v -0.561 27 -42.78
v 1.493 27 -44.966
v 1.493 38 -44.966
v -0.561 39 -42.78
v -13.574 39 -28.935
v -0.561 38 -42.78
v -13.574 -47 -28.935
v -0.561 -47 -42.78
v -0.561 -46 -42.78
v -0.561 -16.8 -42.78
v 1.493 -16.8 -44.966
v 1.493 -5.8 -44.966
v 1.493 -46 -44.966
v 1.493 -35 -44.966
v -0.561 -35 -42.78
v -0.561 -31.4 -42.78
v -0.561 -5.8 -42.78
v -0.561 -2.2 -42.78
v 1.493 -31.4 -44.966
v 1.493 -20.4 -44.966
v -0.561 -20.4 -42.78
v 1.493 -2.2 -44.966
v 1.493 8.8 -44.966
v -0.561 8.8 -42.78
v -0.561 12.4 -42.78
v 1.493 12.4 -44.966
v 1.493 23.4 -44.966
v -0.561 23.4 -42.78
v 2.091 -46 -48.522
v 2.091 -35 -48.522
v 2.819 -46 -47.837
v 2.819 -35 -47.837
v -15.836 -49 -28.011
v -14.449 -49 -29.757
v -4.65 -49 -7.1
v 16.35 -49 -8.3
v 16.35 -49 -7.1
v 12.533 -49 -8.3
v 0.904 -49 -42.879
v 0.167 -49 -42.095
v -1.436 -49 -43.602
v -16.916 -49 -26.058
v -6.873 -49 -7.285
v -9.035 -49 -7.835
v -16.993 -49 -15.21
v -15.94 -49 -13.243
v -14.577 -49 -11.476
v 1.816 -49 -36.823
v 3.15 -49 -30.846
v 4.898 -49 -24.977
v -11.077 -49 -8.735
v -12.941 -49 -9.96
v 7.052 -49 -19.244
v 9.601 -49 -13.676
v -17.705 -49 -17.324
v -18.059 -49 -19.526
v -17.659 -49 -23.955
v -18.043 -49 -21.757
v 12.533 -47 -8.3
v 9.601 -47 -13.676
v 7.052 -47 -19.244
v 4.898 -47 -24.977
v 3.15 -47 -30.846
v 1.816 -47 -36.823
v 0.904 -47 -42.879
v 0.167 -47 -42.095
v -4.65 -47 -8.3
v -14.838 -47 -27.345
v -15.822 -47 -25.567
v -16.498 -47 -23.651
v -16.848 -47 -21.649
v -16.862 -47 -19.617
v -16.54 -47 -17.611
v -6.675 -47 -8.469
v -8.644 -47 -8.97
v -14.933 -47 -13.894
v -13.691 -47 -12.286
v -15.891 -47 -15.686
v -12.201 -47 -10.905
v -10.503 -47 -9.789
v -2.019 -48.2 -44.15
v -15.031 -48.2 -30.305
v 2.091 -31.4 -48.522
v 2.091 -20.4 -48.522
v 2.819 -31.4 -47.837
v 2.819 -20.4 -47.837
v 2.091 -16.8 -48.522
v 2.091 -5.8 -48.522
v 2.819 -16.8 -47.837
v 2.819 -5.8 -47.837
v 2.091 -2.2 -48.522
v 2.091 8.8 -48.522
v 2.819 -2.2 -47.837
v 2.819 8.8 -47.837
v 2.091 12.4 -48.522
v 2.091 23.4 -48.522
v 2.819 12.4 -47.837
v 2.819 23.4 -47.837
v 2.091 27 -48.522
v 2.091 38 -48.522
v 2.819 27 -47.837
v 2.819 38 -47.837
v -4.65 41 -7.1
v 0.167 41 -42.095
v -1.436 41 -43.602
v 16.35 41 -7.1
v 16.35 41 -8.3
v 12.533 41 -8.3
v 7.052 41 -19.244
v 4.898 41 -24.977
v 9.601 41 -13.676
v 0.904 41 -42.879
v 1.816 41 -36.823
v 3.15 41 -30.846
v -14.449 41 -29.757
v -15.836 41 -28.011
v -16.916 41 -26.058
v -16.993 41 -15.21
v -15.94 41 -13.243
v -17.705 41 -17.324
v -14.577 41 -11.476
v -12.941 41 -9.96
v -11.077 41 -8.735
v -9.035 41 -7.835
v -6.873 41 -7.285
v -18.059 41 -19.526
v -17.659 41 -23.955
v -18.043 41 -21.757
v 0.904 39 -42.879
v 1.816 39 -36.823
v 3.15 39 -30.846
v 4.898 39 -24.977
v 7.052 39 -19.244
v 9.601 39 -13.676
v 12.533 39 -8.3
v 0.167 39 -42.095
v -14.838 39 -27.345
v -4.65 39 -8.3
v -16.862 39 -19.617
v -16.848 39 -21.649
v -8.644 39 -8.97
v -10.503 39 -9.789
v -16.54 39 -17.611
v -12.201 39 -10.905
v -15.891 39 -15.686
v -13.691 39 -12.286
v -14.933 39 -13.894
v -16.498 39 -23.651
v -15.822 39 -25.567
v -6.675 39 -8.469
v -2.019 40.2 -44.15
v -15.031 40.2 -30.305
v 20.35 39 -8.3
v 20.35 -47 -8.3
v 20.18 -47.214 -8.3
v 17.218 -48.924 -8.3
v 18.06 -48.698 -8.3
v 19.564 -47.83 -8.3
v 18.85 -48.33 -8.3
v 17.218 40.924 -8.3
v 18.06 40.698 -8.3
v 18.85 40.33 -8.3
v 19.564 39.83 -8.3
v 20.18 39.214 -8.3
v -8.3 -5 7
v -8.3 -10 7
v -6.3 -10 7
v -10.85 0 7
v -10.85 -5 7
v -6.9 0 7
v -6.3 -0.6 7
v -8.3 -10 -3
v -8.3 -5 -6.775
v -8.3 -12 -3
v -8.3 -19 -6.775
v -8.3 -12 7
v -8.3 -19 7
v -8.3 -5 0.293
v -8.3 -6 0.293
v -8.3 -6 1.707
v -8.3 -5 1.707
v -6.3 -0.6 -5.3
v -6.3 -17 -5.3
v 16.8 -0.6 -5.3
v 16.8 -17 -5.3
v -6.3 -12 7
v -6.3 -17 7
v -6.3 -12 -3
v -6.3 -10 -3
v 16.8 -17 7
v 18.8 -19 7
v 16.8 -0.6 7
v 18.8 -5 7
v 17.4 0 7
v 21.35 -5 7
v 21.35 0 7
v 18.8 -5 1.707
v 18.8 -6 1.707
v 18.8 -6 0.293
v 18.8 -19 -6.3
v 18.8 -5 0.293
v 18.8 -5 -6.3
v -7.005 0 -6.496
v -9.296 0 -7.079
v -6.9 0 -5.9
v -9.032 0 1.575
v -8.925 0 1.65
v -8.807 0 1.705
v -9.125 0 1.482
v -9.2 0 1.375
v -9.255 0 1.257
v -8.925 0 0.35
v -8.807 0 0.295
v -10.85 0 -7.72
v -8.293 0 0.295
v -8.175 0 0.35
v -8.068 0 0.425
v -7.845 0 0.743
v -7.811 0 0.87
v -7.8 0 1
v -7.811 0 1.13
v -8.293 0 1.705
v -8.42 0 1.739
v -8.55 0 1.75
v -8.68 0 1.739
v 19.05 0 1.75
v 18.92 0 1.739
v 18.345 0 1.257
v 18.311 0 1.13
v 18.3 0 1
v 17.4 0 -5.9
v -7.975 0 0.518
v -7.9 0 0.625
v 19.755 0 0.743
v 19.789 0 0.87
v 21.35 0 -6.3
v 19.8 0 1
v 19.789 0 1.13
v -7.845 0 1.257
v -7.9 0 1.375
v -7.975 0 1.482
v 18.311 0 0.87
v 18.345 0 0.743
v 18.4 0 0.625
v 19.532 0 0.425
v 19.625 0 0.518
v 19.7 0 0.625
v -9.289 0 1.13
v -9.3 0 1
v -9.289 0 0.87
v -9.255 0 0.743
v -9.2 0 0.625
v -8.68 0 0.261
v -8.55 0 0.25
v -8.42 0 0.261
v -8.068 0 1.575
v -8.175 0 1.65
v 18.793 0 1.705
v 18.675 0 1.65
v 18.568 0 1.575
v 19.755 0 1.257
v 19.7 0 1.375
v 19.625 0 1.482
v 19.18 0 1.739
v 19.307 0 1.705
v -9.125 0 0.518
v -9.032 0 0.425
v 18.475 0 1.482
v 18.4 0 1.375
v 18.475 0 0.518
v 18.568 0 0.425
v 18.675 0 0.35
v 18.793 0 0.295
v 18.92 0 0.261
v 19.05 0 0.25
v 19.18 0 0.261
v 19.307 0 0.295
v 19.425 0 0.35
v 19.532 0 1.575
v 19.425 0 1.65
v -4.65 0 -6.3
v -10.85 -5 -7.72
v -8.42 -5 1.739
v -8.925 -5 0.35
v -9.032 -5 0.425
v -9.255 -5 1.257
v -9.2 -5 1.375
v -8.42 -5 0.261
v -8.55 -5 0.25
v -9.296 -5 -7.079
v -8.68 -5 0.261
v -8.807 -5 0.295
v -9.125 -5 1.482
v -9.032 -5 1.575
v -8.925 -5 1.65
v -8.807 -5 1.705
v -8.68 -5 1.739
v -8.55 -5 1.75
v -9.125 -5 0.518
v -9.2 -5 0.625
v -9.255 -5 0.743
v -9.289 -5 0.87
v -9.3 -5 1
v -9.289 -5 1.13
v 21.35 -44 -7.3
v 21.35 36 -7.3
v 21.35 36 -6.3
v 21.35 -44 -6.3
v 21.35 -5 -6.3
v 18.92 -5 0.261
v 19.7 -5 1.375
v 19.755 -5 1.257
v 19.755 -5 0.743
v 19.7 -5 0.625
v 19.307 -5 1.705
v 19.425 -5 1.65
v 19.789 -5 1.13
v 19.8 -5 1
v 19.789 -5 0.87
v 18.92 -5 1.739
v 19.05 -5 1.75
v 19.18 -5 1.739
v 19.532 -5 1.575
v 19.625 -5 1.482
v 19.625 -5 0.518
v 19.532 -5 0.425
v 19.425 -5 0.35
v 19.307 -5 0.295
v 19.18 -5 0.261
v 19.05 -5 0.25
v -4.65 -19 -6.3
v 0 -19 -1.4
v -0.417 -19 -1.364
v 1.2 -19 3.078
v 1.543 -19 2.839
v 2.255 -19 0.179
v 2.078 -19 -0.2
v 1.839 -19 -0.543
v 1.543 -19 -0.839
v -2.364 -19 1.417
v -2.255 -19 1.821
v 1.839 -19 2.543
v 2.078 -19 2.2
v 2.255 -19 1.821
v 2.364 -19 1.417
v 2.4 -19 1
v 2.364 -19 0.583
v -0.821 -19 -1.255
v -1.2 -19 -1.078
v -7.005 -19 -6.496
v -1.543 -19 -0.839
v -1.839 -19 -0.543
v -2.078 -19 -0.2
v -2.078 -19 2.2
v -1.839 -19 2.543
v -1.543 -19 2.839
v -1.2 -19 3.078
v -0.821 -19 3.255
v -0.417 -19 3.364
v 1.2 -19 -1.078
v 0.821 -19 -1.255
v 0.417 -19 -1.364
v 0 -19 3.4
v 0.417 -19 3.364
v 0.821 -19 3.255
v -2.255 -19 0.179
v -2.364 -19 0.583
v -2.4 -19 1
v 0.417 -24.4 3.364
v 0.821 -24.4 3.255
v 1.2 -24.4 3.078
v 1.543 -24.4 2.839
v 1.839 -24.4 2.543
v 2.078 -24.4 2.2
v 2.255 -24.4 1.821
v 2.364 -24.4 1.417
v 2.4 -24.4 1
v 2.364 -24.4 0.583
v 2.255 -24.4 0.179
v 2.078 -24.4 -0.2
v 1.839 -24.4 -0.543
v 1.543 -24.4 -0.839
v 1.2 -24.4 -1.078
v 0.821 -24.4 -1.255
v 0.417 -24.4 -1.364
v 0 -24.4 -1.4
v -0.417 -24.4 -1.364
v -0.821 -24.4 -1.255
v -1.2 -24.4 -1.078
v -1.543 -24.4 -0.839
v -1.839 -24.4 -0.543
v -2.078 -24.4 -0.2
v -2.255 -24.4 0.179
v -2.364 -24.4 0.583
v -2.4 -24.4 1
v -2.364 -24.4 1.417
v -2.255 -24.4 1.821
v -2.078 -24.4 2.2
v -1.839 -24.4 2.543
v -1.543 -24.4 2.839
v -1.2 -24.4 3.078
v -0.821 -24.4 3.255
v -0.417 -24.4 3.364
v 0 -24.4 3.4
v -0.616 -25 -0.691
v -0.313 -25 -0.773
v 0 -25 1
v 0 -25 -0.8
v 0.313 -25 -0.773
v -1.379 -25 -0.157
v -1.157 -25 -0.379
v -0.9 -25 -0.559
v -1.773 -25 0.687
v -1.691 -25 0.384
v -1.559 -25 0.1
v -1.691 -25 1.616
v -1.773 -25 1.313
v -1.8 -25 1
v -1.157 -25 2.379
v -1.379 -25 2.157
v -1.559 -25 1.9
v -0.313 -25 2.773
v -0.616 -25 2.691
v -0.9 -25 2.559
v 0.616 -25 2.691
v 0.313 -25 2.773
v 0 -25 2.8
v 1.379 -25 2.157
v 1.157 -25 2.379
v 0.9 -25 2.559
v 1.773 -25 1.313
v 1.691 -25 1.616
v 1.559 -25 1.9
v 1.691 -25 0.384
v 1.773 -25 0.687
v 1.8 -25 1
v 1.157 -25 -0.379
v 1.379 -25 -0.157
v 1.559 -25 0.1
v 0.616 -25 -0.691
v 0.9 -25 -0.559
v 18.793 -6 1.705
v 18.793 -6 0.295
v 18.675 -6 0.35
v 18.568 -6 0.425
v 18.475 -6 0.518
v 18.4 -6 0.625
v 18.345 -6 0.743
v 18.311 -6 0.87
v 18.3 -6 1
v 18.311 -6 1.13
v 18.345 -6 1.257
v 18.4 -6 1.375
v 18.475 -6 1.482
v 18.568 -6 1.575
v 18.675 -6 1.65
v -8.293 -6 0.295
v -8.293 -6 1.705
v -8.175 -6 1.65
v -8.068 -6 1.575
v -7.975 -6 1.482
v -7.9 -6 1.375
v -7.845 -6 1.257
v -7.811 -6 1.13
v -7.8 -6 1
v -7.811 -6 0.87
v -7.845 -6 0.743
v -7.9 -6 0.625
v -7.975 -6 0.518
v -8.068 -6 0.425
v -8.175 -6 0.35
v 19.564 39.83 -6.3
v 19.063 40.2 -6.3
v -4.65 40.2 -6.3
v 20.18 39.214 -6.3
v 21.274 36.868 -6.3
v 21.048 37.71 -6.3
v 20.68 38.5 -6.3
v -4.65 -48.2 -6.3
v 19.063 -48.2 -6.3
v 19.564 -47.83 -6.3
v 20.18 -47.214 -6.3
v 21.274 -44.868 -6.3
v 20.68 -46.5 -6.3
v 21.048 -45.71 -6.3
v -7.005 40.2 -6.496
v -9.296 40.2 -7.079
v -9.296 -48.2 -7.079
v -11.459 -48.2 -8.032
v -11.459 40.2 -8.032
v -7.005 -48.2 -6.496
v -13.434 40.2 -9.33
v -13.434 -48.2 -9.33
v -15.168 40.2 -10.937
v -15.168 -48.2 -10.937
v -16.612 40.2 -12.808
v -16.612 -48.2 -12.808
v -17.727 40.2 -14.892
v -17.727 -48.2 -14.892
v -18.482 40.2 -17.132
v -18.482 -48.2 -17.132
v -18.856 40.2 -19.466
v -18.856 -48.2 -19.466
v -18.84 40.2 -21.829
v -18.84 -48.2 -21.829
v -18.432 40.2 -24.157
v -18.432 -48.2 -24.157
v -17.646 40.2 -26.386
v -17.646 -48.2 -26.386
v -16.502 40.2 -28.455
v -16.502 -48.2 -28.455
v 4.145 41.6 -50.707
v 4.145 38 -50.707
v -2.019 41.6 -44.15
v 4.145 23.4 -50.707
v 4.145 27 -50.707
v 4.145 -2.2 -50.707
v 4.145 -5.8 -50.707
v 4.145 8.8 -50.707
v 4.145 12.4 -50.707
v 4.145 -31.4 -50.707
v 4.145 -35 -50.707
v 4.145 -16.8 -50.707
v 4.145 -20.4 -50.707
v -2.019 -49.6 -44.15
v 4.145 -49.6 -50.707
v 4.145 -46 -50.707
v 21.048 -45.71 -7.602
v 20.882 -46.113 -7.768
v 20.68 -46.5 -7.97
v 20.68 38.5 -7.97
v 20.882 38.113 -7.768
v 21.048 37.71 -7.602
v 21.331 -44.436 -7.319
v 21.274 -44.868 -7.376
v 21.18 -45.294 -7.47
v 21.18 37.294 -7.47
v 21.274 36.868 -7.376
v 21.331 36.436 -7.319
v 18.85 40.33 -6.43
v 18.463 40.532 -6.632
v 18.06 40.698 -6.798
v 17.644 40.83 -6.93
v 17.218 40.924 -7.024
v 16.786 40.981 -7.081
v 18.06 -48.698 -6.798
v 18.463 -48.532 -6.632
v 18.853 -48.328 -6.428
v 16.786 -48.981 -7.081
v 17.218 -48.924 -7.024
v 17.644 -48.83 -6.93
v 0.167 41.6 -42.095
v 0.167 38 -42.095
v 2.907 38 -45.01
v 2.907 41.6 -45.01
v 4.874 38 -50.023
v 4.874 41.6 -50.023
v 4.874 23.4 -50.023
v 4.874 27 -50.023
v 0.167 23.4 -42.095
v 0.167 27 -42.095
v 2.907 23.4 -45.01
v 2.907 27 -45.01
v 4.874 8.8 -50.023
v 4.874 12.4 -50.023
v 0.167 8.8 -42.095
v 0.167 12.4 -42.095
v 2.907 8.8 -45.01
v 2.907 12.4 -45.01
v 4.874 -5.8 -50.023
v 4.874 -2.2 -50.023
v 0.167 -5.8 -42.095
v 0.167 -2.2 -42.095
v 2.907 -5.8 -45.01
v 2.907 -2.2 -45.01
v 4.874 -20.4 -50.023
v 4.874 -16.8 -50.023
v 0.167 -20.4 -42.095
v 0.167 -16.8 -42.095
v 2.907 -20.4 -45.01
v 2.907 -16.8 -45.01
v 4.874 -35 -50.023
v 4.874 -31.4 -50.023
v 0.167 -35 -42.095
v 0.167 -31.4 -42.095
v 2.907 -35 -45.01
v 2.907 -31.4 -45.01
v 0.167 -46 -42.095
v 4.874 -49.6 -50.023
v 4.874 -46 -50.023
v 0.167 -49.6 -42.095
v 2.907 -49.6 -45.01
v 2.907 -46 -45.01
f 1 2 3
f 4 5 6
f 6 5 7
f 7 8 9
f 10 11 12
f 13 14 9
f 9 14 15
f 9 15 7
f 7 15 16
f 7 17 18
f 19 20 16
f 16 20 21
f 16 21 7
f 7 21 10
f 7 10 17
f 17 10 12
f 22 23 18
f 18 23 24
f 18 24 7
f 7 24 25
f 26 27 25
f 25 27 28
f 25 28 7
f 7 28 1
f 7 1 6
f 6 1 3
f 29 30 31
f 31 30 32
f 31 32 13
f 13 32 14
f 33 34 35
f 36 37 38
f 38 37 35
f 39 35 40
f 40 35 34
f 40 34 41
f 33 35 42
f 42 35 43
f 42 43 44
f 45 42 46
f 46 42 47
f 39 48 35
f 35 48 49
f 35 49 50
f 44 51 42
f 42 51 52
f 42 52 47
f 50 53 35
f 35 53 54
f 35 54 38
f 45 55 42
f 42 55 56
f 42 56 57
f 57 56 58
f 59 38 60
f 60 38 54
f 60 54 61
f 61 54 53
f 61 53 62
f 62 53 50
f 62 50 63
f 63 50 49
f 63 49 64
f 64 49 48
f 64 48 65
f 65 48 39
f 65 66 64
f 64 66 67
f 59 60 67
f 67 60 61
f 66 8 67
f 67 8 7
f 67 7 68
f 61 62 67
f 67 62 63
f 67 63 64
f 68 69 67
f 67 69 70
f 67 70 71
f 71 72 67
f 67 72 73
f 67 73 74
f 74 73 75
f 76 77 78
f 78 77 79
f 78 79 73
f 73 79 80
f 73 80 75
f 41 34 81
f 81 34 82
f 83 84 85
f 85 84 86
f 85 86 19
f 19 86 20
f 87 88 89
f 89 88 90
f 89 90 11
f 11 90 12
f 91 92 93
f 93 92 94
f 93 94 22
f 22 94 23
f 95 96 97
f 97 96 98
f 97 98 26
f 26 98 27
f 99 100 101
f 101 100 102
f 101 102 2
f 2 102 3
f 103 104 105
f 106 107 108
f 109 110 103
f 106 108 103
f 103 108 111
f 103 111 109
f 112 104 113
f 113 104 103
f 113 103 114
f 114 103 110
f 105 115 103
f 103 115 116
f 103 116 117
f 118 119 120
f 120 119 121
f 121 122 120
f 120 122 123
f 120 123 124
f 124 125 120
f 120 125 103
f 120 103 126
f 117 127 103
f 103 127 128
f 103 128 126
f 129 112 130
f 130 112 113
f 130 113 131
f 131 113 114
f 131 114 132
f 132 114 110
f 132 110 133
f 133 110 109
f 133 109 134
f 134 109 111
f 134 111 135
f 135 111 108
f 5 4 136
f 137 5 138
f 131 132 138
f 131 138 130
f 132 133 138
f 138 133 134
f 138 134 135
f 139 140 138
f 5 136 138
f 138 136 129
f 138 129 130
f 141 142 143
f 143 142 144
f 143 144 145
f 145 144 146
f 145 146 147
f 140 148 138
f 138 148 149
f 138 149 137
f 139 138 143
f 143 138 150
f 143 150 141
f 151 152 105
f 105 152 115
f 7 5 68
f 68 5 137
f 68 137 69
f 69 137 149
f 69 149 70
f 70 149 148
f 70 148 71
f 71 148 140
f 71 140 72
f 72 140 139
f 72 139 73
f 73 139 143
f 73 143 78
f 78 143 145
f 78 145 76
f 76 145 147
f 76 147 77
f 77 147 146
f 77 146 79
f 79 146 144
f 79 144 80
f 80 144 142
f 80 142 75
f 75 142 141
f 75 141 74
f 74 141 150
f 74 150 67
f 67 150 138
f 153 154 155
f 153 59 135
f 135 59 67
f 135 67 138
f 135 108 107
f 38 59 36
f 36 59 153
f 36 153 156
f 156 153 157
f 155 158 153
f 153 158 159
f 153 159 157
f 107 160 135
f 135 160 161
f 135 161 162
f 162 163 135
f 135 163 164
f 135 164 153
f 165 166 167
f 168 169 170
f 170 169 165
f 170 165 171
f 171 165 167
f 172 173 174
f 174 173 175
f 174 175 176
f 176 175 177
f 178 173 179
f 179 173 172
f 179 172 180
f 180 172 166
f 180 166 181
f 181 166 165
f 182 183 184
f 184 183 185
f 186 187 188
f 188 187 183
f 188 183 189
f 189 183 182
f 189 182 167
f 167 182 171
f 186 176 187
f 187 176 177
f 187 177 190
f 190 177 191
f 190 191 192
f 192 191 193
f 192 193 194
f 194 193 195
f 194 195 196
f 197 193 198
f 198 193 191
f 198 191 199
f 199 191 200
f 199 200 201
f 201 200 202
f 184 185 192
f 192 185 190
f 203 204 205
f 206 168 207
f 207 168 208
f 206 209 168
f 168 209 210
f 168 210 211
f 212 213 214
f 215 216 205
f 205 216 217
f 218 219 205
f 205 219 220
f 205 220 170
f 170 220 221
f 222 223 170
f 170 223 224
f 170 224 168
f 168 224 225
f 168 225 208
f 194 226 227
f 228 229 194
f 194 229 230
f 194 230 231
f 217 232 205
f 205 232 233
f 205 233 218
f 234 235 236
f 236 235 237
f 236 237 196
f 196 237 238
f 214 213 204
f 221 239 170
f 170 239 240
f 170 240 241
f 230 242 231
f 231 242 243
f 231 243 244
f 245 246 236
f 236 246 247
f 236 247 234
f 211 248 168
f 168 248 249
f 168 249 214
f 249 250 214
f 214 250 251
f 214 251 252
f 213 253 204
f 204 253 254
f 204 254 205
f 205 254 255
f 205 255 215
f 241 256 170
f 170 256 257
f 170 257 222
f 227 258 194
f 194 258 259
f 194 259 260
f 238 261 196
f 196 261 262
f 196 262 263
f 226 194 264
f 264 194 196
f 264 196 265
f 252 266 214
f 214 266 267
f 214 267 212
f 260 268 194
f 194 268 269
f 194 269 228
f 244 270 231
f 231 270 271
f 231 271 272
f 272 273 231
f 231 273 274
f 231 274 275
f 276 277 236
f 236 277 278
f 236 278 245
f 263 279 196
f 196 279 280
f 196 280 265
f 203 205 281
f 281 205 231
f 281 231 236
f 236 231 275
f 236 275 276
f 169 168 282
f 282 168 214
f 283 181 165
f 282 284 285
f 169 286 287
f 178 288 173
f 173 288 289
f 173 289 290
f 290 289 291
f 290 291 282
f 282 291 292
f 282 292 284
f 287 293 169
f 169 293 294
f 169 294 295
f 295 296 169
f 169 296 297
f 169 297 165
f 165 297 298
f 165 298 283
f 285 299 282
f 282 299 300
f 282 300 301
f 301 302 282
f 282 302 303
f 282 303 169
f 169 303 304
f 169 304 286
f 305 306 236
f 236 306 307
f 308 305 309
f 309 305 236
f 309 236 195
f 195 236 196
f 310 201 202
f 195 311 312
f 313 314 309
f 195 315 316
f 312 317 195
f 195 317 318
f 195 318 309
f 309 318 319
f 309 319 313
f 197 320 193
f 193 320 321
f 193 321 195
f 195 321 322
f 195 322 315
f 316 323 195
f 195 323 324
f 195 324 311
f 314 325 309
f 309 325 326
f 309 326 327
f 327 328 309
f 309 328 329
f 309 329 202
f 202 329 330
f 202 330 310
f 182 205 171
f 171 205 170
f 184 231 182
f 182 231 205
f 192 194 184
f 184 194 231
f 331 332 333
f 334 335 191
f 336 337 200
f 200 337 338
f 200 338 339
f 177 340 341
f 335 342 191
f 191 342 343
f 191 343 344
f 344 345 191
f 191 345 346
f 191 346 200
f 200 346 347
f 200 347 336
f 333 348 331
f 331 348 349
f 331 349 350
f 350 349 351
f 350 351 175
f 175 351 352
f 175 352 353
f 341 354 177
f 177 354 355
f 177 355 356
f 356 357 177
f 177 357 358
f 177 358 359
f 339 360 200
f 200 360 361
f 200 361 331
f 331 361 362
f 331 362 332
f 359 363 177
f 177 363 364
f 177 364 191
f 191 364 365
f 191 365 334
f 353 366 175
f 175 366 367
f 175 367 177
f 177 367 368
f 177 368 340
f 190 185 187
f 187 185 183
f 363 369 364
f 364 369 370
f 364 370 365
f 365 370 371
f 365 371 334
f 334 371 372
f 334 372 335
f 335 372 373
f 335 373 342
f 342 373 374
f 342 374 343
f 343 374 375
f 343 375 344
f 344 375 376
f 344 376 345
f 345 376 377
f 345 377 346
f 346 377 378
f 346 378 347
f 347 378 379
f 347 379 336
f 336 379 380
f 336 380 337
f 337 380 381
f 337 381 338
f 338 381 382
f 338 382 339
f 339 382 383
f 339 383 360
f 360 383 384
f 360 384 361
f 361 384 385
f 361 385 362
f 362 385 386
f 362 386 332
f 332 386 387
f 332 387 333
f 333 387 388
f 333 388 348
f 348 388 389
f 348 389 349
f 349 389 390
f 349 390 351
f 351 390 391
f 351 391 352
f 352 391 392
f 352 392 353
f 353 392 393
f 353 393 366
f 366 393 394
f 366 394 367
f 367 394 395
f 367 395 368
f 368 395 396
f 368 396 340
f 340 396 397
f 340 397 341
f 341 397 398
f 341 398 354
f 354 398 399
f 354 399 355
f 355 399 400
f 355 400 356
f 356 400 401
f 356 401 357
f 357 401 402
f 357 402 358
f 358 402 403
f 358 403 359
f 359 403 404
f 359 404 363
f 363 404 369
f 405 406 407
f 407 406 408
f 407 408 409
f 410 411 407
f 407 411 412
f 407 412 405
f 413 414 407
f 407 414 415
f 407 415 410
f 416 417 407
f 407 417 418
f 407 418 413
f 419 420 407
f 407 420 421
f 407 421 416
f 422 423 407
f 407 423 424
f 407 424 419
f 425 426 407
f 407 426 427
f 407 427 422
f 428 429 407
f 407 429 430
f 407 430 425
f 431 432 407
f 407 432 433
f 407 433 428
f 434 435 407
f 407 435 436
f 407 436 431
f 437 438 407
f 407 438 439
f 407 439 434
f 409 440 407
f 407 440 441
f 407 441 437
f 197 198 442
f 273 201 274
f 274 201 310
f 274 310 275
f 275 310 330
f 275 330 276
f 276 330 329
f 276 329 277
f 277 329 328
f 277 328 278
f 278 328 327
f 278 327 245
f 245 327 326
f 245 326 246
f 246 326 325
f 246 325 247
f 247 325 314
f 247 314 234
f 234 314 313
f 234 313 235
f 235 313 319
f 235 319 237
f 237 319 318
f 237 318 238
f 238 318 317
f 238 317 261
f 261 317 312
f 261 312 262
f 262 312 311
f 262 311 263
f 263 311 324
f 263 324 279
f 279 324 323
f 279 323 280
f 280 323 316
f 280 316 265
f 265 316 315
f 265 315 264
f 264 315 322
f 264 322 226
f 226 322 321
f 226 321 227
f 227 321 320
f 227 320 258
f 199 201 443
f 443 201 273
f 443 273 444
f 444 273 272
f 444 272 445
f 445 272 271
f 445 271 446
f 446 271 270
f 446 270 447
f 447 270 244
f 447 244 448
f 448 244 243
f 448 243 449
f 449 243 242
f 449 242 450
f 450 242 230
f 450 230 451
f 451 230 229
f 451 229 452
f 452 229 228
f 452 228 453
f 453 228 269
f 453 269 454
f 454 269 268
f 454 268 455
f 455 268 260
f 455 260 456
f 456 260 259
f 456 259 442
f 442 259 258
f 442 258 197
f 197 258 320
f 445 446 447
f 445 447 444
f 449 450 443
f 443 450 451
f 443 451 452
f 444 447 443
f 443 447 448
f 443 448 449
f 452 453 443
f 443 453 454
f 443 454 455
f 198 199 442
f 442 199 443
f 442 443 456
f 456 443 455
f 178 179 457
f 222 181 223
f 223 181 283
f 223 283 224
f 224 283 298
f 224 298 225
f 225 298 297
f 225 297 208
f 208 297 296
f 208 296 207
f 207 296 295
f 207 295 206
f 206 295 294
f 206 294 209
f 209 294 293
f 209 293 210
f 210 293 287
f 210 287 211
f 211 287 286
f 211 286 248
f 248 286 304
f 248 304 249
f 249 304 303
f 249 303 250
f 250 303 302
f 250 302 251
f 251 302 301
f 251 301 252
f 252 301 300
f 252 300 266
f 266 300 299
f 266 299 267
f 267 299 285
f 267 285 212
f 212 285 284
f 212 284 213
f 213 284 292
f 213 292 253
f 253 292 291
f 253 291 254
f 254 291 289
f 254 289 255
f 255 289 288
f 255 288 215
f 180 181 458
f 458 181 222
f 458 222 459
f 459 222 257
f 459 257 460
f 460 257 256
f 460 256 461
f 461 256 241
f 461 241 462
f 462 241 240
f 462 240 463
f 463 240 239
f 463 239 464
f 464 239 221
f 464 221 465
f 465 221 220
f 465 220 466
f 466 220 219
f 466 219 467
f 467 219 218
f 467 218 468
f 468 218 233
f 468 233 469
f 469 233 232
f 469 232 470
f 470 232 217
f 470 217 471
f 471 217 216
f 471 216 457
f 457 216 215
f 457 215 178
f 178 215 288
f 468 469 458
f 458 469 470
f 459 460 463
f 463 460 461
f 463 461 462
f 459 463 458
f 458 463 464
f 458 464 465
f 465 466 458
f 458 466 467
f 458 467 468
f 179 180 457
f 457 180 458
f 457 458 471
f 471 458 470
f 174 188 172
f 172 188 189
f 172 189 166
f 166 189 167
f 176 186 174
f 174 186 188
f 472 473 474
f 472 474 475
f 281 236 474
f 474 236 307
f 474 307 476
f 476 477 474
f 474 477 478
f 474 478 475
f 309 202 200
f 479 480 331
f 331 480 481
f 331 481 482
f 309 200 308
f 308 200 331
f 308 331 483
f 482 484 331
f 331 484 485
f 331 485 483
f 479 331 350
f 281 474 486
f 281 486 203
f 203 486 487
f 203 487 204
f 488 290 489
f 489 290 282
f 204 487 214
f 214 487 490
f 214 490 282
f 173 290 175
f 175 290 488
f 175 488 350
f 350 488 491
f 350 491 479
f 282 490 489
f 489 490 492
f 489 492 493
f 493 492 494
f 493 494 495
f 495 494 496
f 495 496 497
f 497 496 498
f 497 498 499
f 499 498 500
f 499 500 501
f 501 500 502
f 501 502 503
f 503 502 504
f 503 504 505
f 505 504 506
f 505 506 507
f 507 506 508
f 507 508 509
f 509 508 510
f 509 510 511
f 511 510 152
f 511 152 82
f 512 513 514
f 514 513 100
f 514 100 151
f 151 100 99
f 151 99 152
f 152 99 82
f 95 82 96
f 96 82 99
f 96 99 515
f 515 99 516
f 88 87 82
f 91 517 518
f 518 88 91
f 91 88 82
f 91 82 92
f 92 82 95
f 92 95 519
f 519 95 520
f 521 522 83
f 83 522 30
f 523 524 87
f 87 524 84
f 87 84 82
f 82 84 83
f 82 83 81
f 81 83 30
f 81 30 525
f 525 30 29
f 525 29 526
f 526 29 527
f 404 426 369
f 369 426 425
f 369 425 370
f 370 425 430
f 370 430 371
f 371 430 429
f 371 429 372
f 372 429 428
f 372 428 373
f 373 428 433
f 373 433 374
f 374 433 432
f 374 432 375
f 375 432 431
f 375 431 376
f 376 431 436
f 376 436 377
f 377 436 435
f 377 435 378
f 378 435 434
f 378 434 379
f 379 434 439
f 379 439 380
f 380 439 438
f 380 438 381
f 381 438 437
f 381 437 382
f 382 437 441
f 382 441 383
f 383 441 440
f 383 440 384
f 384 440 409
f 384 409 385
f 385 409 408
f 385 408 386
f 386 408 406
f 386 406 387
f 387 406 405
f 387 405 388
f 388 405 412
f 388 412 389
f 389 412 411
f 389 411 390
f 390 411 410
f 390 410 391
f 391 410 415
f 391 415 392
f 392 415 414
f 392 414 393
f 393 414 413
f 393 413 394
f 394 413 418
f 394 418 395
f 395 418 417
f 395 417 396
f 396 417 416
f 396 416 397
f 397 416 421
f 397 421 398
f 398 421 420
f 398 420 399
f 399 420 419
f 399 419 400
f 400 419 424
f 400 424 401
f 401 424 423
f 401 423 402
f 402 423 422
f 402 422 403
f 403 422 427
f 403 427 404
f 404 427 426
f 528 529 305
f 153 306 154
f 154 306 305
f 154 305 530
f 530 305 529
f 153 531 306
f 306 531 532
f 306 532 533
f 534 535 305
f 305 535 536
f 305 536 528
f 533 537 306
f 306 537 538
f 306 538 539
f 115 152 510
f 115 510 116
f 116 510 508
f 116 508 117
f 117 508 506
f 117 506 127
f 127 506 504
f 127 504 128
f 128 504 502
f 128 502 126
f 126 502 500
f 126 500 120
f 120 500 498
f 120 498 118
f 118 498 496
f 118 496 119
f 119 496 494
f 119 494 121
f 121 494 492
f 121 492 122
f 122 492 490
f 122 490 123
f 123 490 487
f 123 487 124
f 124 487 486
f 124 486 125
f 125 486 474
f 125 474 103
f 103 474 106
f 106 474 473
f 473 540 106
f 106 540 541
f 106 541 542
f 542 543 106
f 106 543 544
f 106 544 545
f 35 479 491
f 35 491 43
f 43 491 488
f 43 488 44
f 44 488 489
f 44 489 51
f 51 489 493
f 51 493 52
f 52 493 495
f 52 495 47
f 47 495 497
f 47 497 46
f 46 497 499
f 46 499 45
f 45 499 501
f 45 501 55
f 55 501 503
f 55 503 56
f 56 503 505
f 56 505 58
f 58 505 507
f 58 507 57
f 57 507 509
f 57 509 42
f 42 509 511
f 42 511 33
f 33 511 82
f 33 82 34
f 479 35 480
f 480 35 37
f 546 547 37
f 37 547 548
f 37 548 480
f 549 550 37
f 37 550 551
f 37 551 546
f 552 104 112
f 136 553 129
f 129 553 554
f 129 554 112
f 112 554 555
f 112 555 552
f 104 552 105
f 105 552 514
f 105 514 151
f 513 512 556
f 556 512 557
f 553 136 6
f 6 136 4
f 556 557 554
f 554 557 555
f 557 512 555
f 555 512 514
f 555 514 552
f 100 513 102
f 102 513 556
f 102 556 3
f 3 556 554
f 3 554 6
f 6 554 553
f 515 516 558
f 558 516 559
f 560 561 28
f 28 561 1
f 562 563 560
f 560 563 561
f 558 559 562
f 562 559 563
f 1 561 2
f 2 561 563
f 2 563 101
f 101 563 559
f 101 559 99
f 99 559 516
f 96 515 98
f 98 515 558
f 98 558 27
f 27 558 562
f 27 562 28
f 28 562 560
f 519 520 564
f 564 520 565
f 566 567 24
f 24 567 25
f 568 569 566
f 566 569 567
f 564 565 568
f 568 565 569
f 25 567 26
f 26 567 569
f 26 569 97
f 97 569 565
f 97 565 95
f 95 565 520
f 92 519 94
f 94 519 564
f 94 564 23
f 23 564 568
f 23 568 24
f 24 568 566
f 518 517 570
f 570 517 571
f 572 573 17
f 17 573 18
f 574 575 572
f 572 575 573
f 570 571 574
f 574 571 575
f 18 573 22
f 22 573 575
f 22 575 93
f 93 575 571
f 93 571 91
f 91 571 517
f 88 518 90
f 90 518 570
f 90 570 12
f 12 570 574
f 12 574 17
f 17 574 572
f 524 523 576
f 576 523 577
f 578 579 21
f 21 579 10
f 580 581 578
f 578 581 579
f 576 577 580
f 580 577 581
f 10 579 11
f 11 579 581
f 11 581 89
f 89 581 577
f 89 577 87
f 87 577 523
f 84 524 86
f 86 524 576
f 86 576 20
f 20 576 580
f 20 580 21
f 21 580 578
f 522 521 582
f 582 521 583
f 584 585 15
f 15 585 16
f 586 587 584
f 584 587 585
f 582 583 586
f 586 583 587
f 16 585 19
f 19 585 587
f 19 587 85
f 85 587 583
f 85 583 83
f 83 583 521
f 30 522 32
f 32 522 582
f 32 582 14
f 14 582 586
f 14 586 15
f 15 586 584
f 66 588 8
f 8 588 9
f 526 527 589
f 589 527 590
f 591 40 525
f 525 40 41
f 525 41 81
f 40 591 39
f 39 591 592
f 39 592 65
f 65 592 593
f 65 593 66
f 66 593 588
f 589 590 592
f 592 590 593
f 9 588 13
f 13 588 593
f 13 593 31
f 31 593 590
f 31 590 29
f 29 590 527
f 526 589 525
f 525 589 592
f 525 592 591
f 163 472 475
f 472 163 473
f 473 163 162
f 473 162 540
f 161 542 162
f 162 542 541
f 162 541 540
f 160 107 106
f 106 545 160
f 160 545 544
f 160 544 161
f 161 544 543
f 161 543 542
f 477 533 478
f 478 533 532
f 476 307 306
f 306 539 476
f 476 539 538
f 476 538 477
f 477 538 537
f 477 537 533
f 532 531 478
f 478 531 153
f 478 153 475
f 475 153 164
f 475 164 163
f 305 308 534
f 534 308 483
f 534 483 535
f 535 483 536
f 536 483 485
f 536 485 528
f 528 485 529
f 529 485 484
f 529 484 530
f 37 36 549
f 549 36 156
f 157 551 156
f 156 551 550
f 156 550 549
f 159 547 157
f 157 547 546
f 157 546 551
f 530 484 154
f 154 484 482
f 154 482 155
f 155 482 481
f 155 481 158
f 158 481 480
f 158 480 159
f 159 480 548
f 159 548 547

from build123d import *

# Parameters (mm, degrees)
BOSS_EXTRUDE1_DEPTH      = 17
SKETCH4_W                = 2.55
SKETCH4_H                = 15.3
SKETCH4_H_2              = 13.3
BOSS_EXTRUDE4_DEPTH      = 5
CHAMFER1_SIZE            = 0.6
SKETCH2_W                = 27.1
SKETCH2_H                = 15.3
BOSS_EXTRUDE2_DEPTH      = 2
SKETCH3_R                = 2.4
BOSS_EXTRUDE3_DEPTH      = 6
SKETCH5_R                = 0.75
CUT_EXTRUDE1_DEPTH       = 6
CUT_EXTRUDE2_REACH       = 41.661
SKETCH7_W                = 10
SKETCH7_H                = 2
BOSS_EXTRUDE5_DEPTH      = 45
BOSS_EXTRUDE5_DEPTH_BACK = 45
BOSS_EXTRUDE6_START      = -2
BOSS_EXTRUDE6_DEPTH      = 2
CHAMFER2_SIZE            = 0.6
CHAMFER4_SIZE            = 1
CHAMFER5_SIZE            = 0.8
BOSS_EXTRUDE7_START      = -3
BOSS_EXTRUDE7_DEPTH      = 3.6
LPATTERN1_COUNT          = 7
LPATTERN1_PITCH          = 14.6
FILLET1_R                = 5


with BuildPart() as part:
    # Sketch1 → Boss-Extrude1 (new body)
    with BuildSketch(Plane(origin=(0, 0, 0), x_dir=(1, 0, 0), z_dir=(0, 1, 0))):
        Polygon((-6.3, 5.3), (-6.3, -7), (-8.3, -7), (-8.3, 8.3), (18.8, 8.3), (18.8, -7), (16.8, -7), (16.8, 5.3), align=None)
    extrude(amount=-BOSS_EXTRUDE1_DEPTH)

    # Sketch4 → Boss-Extrude4 (add)
    with BuildSketch(Plane(origin=(0, 0, 0), x_dir=(1, 0, 0), z_dir=(0, 1, 0))):
        with Locations((-9.575, 0.65)):
            Rectangle(SKETCH4_W, SKETCH4_H)
        with Locations((20.075, -0.35)):
            Rectangle(SKETCH4_W, SKETCH4_H_2)
    extrude(amount=-BOSS_EXTRUDE4_DEPTH)

    # Chamfer1
    chamfer1_edges = [part.edges().sort_by_distance(p)[0] for p in [
        (16.8, 0, 0.85),
        (5.25, 0, -5.3),
        (-6.3, 0, 0.85),
    ]]
    chamfer(chamfer1_edges, length=CHAMFER1_SIZE)

    # Sketch2 → Boss-Extrude2 (add)
    with BuildSketch(Plane.XZ.offset(17)):
        with Locations((5.25, -0.65)):
            Rectangle(SKETCH2_W, SKETCH2_H)
    extrude(amount=BOSS_EXTRUDE2_DEPTH)

    # Sketch3 → Boss-Extrude3 (add)
    with BuildSketch(Plane.XZ.offset(19)):
        with Locations(Location((0, 1, 0), (0, 0, 270))):
            Circle(SKETCH3_R)
    extrude(amount=BOSS_EXTRUDE3_DEPTH)

    # Sketch5 → Cut-Extrude1 (cut)
    with BuildSketch(Plane(origin=(0, 0, 0), x_dir=(1, 0, 0), z_dir=(0, 1, 0))):
        with Locations(Location((-8.55, -1, 0), (0, 0, 270))):
            Circle(SKETCH5_R)
        with Locations(Location((19.05, -1, 0), (0, 0, 270))):
            Circle(SKETCH5_R)
    extrude(amount=-CUT_EXTRUDE1_DEPTH, mode=Mode.SUBTRACT)

    # Sketch7 → Cut-Extrude2 (cut, up to next)
    with BuildSketch(Plane.ZY.offset(8.3), mode=Mode.PRIVATE) as cut_extrude2_sk1:
        with Locations((2, -11)):
            Rectangle(SKETCH7_W, SKETCH7_H)
    cut_extrude2_tool1 = extrude(cut_extrude2_sk1.sketch, amount=-CUT_EXTRUDE2_REACH, mode=Mode.PRIVATE) & part.part
    add(cut_extrude2_tool1.solids().sort_by_distance((-8.3, -11, 2))[0], mode=Mode.SUBTRACT)

    # Sketch8 → Boss-Extrude5 (add, two sides: drawn at the far end of the back side and taken through both)
    with BuildSketch(Plane(origin=(0, -4, 1), x_dir=(1, 0, 0), z_dir=(0, 1, 0)).offset(-BOSS_EXTRUDE5_DEPTH_BACK)):
        with BuildLine():
            Line((21.35, 9.3), (-4.65, 9.3))
            ThreePointArc((-4.65, 9.3), (-15.891202985, 16.685930347), (-13.574121194, 29.935373491))
            Line((-13.574121194, 29.935373491), (1.493248773, 45.965793394))
            Line((1.493248773, 45.965793394), (2.819234682, 48.836640198))
            Line((2.819234682, 48.836640198), (2.090579232, 49.521520651))
            Line((2.090579232, 49.521520651), (-15.031432094, 31.305134397))
            ThreePointArc((-15.031432094, 31.305134397), (-17.726893838, 15.892054353), (-4.65, 7.3))
            Line((-4.65, 7.3), (21.35, 7.3))
            Line((21.35, 7.3), (21.35, 9.3))
        make_face()
    extrude(amount=BOSS_EXTRUDE5_DEPTH + BOSS_EXTRUDE5_DEPTH_BACK)

    # Sketch11 → Boss-Extrude6 (add)
    with BuildSketch(Plane(origin=(0, 41, 0), x_dir=(1, 0, 0), z_dir=(0, 1, 0)).offset(BOSS_EXTRUDE6_START)):
        with BuildLine():
            Line((0.537054569, 46.868700502), (-15.031432094, 30.305134397))
            ThreePointArc((-15.031432094, 30.305134397), (-17.726893838, 14.892054353), (-4.65, 6.3))
            Line((-4.65, 6.3), (13.753385306, 6.3))
            ThreePointArc((13.753385306, 6.3), (4.636095939, 25.766936525), (0.537054569, 46.868700502))
        make_face()
    boss_extrude6 = extrude(amount=BOSS_EXTRUDE6_DEPTH)

    # Mirror1: Boss-Extrude6 across plane
    add(boss_extrude6.mirror(Plane(origin=(0, -4, 1), x_dir=(0, 0, 1), z_dir=(0, 1, 0))))

    # Chamfer2
    chamfer2_edges = [part.edges().sort_by_distance(p)[0] for p in [
        (0, -25, 3.4),
    ]]
    chamfer(chamfer2_edges, length=CHAMFER2_SIZE)

    # Chamfer4
    chamfer4_edges = [part.edges().sort_by_distance(p)[0] for p in [
        (21.35, -4, -8.3),
    ]]
    chamfer(chamfer4_edges, length=CHAMFER4_SIZE)

    # Chamfer5
    chamfer5_edges = [part.edges().sort_by_distance(p)[0] for p in [
        (8.35, -49, -6.3),
        (-17.726893838, -49, -14.892054353),
        (-6.470426431, -49, -39.413327524),
        (-6.470426431, 41, -39.413327524),
        (-17.726893838, 41, -14.892054353),
        (8.35, 41, -6.3),
    ]]
    chamfer(chamfer5_edges, length=CHAMFER5_SIZE)

    # Sketch12 → Boss-Extrude7 (add)
    with BuildSketch(Plane(origin=(0, 41, 0), x_dir=(1, 0, 0), z_dir=(0, 1, 0)).offset(BOSS_EXTRUDE7_START)):
        Polygon((-2.018703486, 44.14958795), (4.145220591, 50.707487001), (4.873876041, 50.022606548), (2.906784676, 45.009568392), (0.167262864, 42.094946591), align=None)
    boss_extrude7 = extrude(amount=BOSS_EXTRUDE7_DEPTH)

    # LPattern1: Boss-Extrude7 ×7
    with Locations(*[(0, -i * LPATTERN1_PITCH, 0) for i in range(1, LPATTERN1_COUNT)]):
        add(boss_extrude7)

    # Fillet1
    fillet1_edges = [part.edges().sort_by_distance(p)[0] for p in [
        (21.35, 41, -7.2),
        (21.35, -49, -7.2),
    ]]
    fillet(fillet1_edges, radius=FILLET1_R)


solid = part.part
